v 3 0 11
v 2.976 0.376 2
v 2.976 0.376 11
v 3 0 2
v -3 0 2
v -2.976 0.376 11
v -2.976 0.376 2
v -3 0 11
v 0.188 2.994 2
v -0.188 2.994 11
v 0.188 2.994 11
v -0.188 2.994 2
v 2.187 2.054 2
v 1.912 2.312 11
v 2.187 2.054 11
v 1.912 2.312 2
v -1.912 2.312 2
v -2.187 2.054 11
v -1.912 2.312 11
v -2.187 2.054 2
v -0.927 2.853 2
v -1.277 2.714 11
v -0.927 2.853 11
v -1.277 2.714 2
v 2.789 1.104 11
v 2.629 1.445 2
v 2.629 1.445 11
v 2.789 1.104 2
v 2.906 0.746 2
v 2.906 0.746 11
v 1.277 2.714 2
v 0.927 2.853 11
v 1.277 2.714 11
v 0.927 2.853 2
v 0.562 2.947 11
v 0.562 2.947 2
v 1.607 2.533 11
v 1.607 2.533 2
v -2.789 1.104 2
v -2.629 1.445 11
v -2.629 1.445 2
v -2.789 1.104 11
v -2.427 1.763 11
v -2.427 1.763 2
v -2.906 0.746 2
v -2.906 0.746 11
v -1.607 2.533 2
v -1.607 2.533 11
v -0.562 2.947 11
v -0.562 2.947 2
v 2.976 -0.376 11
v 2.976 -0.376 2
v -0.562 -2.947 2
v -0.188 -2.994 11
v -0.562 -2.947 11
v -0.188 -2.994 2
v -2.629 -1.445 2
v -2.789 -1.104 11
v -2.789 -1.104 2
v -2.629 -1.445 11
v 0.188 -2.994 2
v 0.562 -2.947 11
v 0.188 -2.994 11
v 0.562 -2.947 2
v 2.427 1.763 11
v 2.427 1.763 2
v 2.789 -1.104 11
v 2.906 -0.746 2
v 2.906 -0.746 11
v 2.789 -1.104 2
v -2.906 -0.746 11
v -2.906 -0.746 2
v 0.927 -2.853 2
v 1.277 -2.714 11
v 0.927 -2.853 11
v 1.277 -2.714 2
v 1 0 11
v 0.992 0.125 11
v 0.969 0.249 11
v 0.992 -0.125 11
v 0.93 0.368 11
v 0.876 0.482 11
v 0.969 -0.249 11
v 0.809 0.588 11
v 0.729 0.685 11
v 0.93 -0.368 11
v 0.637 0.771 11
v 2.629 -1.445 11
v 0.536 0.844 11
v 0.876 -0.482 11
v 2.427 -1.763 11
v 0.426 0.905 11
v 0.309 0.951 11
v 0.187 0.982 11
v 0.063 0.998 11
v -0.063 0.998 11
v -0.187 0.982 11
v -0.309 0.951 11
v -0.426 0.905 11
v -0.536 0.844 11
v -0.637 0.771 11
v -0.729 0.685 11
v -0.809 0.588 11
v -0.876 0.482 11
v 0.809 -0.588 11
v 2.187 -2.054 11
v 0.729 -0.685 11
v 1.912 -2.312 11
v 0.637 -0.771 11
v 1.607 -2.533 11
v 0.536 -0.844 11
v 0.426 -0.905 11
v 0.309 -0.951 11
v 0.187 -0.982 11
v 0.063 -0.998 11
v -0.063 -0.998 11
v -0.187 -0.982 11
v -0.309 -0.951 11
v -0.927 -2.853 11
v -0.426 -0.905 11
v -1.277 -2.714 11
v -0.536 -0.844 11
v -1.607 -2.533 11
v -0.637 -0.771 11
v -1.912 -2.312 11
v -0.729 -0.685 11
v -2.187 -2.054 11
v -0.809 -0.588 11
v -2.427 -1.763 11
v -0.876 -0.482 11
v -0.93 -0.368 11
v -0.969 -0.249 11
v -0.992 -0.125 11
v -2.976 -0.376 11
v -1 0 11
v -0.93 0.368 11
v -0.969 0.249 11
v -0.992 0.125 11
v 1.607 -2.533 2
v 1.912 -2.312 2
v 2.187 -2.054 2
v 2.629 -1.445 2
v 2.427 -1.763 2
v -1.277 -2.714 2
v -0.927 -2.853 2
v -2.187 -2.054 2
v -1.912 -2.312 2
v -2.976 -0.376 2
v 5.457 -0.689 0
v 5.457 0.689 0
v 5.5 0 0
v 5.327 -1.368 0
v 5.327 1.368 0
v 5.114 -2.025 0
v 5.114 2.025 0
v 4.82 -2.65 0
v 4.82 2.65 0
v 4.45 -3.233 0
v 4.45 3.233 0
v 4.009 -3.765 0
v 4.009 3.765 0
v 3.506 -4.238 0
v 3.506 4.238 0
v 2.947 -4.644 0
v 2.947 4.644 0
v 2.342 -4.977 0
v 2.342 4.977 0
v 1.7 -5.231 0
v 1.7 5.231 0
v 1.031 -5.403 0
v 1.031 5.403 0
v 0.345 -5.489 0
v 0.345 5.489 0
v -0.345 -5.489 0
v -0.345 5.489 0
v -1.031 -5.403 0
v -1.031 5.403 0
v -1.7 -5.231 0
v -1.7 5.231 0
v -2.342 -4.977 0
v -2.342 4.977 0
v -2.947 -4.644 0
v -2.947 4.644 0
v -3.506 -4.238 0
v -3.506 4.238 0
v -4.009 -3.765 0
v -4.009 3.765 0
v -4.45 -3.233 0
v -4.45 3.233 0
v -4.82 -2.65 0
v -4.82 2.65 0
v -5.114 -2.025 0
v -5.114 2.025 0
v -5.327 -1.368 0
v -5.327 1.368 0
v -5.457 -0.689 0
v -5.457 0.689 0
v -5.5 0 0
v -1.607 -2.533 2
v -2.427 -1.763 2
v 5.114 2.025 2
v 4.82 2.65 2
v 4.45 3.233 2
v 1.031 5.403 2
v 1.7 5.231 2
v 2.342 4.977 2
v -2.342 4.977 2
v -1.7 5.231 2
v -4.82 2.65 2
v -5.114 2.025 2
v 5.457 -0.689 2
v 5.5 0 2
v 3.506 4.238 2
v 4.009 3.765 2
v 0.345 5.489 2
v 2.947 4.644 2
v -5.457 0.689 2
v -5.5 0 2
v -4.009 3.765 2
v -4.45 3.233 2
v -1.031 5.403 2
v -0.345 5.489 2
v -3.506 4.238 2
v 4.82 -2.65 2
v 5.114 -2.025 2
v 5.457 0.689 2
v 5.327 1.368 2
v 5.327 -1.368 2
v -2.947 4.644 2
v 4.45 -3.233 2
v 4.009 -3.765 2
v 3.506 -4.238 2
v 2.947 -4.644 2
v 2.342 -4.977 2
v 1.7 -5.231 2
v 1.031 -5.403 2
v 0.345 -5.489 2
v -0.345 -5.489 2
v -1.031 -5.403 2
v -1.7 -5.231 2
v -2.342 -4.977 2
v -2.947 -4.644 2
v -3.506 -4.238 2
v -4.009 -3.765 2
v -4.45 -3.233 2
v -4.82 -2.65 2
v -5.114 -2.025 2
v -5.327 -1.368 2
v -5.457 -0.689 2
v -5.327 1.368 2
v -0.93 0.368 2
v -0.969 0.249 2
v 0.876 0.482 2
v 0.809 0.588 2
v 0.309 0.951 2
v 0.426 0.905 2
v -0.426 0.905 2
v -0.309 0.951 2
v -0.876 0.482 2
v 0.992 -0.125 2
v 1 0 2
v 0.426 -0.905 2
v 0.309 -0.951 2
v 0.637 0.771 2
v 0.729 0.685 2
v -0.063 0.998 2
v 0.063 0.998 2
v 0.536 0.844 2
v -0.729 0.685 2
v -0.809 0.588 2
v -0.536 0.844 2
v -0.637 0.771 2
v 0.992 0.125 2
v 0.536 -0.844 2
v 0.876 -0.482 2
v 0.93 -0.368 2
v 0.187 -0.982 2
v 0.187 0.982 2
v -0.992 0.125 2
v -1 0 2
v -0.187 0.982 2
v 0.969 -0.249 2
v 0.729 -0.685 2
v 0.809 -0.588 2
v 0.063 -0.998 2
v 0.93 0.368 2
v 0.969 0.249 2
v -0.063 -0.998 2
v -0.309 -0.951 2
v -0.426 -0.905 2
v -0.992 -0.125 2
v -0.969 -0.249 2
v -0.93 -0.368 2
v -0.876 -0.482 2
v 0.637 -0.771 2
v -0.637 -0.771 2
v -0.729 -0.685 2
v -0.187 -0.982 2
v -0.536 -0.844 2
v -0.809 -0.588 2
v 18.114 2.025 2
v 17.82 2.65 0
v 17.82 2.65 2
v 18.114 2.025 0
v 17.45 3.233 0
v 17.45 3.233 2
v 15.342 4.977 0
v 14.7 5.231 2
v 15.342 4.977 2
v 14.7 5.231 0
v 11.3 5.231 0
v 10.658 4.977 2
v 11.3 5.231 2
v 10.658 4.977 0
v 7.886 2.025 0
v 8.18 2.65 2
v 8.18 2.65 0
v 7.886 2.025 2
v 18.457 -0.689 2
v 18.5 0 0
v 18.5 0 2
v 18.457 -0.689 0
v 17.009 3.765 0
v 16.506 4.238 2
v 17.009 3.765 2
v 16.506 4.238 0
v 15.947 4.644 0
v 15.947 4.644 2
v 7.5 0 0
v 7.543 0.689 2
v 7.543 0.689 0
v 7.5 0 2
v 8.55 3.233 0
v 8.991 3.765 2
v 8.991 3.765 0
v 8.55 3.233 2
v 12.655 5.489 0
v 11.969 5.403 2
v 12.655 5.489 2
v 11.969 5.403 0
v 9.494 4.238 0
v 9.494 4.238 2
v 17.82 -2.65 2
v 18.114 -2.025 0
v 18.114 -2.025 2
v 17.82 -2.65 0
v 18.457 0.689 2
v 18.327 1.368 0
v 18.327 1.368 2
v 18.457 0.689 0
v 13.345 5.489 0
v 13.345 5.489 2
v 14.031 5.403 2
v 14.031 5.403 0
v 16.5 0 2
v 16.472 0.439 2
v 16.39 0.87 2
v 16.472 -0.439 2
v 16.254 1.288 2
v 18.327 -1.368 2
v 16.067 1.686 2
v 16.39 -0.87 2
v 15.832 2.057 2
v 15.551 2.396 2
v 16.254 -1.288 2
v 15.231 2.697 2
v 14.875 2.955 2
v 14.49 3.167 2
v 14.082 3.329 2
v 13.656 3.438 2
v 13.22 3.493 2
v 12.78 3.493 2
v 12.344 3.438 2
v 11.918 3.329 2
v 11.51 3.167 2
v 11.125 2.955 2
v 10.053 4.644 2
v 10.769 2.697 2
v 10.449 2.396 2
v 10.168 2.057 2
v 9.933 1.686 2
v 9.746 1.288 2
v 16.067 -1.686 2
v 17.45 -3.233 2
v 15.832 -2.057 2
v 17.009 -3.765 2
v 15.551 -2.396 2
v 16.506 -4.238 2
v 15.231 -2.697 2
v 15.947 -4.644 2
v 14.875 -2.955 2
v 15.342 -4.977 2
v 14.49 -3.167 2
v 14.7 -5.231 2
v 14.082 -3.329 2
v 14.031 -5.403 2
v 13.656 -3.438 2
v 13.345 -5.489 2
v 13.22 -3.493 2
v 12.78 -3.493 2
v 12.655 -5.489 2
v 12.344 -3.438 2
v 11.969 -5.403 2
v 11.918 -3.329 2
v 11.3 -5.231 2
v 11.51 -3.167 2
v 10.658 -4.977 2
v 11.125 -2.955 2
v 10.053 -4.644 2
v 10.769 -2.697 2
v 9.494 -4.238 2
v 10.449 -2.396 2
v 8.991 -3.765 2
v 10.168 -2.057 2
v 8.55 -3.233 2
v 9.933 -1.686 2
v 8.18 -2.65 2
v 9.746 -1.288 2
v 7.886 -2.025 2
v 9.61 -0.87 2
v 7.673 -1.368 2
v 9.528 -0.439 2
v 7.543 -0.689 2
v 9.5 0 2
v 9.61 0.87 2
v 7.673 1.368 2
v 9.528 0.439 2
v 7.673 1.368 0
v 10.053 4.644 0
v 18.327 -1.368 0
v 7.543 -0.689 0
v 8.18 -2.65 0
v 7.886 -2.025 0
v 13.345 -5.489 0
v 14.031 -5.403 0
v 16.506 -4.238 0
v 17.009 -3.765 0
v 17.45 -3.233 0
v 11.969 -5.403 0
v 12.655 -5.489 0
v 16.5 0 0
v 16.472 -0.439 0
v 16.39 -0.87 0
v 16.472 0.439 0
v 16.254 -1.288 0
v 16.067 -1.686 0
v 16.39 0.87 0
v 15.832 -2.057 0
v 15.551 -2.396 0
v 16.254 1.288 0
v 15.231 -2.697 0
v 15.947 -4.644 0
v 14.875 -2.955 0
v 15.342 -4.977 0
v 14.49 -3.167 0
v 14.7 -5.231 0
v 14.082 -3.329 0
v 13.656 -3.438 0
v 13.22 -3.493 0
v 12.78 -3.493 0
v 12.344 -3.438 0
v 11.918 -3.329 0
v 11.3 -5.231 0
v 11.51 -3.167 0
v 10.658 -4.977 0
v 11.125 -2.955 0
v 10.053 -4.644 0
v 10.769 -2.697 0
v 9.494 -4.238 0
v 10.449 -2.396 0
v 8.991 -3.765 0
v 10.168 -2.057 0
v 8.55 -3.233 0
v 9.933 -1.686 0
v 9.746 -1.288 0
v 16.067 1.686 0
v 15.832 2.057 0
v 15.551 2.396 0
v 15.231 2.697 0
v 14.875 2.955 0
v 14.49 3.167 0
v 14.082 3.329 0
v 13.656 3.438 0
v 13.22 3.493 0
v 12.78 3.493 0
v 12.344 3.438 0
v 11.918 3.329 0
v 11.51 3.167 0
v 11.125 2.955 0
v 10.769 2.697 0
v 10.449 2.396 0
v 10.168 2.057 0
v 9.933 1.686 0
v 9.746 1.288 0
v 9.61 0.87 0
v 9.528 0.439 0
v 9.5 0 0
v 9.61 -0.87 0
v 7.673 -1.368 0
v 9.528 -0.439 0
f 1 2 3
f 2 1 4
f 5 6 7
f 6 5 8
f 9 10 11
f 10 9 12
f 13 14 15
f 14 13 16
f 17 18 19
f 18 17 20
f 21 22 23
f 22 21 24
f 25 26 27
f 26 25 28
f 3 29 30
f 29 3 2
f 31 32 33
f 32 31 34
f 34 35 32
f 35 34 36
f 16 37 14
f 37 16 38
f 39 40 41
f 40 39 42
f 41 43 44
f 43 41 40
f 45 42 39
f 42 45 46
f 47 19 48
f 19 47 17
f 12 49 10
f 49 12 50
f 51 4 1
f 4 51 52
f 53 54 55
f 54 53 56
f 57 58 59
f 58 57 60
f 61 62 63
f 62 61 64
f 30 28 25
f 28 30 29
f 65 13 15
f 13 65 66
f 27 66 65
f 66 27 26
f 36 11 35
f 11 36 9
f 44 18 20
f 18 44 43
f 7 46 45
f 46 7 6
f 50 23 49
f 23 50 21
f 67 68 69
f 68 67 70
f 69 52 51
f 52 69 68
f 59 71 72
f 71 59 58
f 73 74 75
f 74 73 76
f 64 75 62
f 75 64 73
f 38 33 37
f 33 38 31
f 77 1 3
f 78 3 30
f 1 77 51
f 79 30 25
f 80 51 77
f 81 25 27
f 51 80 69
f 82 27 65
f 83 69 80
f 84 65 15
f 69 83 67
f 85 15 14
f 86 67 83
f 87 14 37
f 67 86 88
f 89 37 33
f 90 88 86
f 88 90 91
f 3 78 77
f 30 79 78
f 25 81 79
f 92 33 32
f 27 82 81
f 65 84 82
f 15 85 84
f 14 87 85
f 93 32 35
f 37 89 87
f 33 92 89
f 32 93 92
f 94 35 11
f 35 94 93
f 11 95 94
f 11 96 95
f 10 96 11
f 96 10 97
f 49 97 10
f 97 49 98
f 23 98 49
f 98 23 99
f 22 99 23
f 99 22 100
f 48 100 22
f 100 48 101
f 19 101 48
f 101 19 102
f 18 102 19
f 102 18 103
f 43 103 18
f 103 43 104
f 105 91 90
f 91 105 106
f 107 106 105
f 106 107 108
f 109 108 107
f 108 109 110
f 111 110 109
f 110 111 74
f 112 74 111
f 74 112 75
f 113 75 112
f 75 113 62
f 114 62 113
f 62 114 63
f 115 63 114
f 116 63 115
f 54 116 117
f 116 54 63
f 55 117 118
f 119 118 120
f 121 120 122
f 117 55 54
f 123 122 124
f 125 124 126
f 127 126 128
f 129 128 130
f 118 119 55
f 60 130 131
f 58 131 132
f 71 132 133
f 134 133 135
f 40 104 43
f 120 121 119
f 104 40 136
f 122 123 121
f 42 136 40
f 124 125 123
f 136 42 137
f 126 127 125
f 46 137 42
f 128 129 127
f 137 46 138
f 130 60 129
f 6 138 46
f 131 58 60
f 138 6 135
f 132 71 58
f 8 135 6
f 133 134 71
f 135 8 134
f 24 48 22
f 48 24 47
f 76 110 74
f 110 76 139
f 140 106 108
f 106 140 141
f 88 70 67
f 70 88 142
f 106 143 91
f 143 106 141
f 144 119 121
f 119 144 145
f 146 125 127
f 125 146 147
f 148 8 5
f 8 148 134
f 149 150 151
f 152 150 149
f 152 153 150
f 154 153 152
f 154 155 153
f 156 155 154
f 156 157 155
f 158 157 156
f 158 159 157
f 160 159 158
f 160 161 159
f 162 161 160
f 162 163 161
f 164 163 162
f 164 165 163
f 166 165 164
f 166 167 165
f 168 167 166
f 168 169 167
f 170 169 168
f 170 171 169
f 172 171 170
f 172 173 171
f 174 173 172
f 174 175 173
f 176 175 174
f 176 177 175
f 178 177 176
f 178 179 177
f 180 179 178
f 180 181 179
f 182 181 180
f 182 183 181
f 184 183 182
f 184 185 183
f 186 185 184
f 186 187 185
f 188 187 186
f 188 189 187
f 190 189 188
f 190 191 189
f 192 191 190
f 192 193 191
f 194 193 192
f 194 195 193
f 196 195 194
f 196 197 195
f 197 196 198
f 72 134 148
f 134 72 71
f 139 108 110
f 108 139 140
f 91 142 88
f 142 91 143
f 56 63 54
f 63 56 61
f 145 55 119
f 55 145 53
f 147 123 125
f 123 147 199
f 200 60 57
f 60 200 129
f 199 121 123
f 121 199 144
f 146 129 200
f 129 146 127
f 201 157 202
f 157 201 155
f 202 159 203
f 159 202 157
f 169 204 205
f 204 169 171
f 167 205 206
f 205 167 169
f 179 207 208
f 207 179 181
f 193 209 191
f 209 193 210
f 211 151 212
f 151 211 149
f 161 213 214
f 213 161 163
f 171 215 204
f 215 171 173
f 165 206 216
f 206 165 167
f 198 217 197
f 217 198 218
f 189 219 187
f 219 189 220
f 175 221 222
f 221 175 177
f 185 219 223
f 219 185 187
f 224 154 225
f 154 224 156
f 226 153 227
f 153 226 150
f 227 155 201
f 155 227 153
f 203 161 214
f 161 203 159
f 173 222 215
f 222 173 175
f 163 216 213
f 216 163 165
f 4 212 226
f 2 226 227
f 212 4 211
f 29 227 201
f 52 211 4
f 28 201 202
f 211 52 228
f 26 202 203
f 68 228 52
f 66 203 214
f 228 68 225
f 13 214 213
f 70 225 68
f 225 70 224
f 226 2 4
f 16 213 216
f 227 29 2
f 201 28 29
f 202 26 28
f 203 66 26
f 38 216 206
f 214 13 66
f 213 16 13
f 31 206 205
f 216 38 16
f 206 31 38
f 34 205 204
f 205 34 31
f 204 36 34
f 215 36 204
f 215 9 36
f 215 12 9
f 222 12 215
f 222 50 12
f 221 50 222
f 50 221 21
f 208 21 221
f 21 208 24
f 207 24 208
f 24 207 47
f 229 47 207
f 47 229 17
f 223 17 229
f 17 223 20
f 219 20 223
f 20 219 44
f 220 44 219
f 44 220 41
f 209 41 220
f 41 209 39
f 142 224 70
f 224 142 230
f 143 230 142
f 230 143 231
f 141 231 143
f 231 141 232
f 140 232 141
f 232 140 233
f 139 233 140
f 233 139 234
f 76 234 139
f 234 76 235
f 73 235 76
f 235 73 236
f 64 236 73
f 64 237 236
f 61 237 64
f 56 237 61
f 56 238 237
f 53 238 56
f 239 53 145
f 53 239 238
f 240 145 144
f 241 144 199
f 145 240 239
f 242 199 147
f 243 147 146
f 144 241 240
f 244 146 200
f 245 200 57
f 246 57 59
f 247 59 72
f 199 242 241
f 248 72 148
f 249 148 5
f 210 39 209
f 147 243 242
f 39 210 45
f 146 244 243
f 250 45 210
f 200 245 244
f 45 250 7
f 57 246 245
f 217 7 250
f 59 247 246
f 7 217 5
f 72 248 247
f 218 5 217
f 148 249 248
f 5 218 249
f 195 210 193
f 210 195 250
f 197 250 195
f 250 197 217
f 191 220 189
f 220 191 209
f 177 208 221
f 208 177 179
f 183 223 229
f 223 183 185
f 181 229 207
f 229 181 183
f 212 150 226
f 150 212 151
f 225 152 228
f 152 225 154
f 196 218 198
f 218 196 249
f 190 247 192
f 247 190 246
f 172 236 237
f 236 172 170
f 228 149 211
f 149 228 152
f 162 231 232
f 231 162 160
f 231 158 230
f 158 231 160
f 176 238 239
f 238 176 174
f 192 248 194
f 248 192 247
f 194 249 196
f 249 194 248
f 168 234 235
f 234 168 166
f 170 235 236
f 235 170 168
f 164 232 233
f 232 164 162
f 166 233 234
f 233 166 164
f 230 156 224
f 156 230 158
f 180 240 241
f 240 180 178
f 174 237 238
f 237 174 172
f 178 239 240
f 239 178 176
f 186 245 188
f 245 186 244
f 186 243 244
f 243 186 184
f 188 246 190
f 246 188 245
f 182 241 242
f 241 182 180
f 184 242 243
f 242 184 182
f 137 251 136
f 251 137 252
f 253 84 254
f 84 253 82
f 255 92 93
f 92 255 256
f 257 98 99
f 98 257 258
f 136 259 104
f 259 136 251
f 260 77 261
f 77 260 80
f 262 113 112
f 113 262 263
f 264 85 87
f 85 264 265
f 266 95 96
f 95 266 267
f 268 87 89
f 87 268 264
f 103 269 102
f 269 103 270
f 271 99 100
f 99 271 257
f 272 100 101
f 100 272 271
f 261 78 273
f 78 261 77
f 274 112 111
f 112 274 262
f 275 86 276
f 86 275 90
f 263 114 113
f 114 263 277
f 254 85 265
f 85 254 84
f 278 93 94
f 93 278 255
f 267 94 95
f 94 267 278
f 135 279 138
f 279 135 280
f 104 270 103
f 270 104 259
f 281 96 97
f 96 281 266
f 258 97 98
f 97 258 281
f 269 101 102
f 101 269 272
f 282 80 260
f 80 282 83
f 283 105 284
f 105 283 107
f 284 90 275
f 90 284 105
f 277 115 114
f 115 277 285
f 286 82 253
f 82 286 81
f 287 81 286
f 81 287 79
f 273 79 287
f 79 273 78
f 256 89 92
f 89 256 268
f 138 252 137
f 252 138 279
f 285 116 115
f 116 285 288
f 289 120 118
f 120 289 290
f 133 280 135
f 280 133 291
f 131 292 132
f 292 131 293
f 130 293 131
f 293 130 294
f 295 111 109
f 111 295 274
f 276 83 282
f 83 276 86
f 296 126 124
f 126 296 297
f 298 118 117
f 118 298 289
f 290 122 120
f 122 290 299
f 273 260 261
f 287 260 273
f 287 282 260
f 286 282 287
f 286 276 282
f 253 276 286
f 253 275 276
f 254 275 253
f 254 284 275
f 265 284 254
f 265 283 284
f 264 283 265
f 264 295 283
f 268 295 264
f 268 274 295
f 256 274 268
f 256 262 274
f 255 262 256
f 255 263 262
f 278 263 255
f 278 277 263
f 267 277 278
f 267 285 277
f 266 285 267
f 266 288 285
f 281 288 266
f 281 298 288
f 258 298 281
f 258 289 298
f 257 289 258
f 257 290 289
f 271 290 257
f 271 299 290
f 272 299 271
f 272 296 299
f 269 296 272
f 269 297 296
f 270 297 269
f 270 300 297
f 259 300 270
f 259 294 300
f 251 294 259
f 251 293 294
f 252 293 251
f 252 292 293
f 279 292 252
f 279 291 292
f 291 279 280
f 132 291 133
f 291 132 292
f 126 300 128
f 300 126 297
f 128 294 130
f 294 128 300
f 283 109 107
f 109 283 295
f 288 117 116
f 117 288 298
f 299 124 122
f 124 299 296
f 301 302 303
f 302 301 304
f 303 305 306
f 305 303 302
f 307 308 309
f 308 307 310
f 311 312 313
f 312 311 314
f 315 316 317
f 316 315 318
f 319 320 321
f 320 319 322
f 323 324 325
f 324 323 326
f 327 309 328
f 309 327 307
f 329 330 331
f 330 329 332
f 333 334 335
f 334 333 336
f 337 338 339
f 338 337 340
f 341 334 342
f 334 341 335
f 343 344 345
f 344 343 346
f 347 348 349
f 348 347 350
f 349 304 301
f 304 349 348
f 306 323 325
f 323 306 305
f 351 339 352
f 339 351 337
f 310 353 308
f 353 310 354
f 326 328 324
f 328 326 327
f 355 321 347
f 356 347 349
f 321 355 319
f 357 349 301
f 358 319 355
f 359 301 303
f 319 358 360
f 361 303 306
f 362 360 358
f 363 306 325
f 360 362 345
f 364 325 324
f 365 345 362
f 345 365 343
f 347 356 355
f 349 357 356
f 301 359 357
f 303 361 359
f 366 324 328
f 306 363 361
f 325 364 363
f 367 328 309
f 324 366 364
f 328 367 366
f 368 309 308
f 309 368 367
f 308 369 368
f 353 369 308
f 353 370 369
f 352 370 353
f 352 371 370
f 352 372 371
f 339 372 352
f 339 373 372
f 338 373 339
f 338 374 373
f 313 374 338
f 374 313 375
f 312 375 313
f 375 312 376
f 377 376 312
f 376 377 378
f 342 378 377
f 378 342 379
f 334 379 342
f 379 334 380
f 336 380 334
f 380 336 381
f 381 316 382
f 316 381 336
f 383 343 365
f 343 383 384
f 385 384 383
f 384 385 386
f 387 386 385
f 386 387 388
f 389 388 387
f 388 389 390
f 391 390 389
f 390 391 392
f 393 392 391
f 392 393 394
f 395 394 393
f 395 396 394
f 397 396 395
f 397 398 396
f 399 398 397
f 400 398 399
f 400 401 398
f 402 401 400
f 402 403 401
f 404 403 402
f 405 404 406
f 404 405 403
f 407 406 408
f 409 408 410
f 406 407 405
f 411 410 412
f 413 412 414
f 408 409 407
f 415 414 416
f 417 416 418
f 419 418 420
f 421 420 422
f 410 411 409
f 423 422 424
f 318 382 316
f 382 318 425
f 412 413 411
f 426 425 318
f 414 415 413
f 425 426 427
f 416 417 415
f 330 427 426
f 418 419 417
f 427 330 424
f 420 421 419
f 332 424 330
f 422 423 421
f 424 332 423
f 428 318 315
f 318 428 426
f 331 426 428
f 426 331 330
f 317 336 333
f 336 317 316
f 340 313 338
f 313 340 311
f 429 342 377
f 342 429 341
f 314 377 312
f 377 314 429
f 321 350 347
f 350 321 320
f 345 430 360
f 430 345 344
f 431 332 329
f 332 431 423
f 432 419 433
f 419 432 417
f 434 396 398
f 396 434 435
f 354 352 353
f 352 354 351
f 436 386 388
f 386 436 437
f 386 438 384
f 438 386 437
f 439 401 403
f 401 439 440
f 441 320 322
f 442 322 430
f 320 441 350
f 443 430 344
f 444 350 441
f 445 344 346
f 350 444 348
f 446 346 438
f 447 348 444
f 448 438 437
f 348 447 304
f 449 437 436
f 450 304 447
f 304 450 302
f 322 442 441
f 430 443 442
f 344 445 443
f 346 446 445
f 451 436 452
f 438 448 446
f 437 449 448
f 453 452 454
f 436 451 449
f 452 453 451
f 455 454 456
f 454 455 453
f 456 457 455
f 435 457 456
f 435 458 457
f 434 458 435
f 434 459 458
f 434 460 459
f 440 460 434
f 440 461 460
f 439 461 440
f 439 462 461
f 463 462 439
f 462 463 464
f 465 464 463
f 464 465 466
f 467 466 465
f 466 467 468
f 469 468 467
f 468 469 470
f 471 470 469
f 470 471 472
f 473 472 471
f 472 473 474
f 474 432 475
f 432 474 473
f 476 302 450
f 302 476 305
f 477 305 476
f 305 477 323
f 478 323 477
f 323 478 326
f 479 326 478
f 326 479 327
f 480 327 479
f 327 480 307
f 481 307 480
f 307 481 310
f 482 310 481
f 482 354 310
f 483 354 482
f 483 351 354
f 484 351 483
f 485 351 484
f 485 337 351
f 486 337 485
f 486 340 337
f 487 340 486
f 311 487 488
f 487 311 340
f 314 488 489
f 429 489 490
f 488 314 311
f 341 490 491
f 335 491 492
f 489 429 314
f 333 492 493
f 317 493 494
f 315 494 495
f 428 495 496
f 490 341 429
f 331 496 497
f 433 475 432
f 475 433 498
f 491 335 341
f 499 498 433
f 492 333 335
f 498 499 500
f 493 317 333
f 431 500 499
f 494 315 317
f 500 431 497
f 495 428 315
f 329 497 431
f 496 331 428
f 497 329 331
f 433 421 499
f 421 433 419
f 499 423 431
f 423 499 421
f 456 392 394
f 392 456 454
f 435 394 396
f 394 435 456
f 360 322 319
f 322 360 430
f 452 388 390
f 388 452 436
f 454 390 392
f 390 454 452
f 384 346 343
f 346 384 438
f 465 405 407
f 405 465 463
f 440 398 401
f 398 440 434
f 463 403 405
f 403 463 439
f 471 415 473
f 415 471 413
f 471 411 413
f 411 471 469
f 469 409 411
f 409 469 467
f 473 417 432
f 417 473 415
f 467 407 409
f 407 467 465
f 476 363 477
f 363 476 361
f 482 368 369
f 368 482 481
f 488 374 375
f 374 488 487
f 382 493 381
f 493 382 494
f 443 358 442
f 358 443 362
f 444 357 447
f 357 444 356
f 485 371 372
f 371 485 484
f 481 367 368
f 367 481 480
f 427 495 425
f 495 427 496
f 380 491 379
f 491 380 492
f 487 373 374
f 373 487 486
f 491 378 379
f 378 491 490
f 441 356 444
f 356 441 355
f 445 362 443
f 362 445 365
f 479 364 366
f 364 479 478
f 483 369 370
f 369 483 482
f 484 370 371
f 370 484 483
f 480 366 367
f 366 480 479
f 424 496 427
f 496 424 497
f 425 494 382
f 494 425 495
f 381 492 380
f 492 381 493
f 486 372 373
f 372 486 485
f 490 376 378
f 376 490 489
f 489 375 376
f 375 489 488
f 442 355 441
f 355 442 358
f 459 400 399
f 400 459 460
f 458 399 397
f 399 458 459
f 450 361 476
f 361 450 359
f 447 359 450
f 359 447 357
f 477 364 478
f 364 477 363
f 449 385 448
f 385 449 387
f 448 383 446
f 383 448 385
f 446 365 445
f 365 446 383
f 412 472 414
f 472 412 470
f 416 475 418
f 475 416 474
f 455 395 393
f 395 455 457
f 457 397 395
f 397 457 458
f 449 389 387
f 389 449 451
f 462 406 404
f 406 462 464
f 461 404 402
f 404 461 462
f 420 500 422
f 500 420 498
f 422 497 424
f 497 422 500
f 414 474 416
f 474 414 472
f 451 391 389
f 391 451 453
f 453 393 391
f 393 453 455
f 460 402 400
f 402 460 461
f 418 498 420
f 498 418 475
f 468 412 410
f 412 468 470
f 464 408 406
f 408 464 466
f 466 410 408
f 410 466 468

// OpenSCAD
diameter_out = 6 / 2;
diameter_in = 2 / 2;
height = 9;
washer_diameter_out = 11 / 2;
washer_height = 2;

hole_through = false;

$fn = 50;

difference() {
    union() {
        cylinder(height + washer_height, diameter_out, diameter_out);
        cylinder(washer_height, washer_diameter_out, washer_diameter_out);
    }
    
    if (hole_through) {
            cylinder(height + washer_height, diameter_in, diameter_in);
    } else {
        translate([0, 0, washer_height]) {
            cylinder(height, diameter_in, diameter_in);
        }
    }
}

translate([(washer_diameter_out * 2) + 2, 0, 0]) {
    difference() {
        cylinder(washer_height, washer_diameter_out, washer_diameter_out);
        cylinder(washer_height, diameter_out + 0.5, diameter_out + 0.5);
    }
}
